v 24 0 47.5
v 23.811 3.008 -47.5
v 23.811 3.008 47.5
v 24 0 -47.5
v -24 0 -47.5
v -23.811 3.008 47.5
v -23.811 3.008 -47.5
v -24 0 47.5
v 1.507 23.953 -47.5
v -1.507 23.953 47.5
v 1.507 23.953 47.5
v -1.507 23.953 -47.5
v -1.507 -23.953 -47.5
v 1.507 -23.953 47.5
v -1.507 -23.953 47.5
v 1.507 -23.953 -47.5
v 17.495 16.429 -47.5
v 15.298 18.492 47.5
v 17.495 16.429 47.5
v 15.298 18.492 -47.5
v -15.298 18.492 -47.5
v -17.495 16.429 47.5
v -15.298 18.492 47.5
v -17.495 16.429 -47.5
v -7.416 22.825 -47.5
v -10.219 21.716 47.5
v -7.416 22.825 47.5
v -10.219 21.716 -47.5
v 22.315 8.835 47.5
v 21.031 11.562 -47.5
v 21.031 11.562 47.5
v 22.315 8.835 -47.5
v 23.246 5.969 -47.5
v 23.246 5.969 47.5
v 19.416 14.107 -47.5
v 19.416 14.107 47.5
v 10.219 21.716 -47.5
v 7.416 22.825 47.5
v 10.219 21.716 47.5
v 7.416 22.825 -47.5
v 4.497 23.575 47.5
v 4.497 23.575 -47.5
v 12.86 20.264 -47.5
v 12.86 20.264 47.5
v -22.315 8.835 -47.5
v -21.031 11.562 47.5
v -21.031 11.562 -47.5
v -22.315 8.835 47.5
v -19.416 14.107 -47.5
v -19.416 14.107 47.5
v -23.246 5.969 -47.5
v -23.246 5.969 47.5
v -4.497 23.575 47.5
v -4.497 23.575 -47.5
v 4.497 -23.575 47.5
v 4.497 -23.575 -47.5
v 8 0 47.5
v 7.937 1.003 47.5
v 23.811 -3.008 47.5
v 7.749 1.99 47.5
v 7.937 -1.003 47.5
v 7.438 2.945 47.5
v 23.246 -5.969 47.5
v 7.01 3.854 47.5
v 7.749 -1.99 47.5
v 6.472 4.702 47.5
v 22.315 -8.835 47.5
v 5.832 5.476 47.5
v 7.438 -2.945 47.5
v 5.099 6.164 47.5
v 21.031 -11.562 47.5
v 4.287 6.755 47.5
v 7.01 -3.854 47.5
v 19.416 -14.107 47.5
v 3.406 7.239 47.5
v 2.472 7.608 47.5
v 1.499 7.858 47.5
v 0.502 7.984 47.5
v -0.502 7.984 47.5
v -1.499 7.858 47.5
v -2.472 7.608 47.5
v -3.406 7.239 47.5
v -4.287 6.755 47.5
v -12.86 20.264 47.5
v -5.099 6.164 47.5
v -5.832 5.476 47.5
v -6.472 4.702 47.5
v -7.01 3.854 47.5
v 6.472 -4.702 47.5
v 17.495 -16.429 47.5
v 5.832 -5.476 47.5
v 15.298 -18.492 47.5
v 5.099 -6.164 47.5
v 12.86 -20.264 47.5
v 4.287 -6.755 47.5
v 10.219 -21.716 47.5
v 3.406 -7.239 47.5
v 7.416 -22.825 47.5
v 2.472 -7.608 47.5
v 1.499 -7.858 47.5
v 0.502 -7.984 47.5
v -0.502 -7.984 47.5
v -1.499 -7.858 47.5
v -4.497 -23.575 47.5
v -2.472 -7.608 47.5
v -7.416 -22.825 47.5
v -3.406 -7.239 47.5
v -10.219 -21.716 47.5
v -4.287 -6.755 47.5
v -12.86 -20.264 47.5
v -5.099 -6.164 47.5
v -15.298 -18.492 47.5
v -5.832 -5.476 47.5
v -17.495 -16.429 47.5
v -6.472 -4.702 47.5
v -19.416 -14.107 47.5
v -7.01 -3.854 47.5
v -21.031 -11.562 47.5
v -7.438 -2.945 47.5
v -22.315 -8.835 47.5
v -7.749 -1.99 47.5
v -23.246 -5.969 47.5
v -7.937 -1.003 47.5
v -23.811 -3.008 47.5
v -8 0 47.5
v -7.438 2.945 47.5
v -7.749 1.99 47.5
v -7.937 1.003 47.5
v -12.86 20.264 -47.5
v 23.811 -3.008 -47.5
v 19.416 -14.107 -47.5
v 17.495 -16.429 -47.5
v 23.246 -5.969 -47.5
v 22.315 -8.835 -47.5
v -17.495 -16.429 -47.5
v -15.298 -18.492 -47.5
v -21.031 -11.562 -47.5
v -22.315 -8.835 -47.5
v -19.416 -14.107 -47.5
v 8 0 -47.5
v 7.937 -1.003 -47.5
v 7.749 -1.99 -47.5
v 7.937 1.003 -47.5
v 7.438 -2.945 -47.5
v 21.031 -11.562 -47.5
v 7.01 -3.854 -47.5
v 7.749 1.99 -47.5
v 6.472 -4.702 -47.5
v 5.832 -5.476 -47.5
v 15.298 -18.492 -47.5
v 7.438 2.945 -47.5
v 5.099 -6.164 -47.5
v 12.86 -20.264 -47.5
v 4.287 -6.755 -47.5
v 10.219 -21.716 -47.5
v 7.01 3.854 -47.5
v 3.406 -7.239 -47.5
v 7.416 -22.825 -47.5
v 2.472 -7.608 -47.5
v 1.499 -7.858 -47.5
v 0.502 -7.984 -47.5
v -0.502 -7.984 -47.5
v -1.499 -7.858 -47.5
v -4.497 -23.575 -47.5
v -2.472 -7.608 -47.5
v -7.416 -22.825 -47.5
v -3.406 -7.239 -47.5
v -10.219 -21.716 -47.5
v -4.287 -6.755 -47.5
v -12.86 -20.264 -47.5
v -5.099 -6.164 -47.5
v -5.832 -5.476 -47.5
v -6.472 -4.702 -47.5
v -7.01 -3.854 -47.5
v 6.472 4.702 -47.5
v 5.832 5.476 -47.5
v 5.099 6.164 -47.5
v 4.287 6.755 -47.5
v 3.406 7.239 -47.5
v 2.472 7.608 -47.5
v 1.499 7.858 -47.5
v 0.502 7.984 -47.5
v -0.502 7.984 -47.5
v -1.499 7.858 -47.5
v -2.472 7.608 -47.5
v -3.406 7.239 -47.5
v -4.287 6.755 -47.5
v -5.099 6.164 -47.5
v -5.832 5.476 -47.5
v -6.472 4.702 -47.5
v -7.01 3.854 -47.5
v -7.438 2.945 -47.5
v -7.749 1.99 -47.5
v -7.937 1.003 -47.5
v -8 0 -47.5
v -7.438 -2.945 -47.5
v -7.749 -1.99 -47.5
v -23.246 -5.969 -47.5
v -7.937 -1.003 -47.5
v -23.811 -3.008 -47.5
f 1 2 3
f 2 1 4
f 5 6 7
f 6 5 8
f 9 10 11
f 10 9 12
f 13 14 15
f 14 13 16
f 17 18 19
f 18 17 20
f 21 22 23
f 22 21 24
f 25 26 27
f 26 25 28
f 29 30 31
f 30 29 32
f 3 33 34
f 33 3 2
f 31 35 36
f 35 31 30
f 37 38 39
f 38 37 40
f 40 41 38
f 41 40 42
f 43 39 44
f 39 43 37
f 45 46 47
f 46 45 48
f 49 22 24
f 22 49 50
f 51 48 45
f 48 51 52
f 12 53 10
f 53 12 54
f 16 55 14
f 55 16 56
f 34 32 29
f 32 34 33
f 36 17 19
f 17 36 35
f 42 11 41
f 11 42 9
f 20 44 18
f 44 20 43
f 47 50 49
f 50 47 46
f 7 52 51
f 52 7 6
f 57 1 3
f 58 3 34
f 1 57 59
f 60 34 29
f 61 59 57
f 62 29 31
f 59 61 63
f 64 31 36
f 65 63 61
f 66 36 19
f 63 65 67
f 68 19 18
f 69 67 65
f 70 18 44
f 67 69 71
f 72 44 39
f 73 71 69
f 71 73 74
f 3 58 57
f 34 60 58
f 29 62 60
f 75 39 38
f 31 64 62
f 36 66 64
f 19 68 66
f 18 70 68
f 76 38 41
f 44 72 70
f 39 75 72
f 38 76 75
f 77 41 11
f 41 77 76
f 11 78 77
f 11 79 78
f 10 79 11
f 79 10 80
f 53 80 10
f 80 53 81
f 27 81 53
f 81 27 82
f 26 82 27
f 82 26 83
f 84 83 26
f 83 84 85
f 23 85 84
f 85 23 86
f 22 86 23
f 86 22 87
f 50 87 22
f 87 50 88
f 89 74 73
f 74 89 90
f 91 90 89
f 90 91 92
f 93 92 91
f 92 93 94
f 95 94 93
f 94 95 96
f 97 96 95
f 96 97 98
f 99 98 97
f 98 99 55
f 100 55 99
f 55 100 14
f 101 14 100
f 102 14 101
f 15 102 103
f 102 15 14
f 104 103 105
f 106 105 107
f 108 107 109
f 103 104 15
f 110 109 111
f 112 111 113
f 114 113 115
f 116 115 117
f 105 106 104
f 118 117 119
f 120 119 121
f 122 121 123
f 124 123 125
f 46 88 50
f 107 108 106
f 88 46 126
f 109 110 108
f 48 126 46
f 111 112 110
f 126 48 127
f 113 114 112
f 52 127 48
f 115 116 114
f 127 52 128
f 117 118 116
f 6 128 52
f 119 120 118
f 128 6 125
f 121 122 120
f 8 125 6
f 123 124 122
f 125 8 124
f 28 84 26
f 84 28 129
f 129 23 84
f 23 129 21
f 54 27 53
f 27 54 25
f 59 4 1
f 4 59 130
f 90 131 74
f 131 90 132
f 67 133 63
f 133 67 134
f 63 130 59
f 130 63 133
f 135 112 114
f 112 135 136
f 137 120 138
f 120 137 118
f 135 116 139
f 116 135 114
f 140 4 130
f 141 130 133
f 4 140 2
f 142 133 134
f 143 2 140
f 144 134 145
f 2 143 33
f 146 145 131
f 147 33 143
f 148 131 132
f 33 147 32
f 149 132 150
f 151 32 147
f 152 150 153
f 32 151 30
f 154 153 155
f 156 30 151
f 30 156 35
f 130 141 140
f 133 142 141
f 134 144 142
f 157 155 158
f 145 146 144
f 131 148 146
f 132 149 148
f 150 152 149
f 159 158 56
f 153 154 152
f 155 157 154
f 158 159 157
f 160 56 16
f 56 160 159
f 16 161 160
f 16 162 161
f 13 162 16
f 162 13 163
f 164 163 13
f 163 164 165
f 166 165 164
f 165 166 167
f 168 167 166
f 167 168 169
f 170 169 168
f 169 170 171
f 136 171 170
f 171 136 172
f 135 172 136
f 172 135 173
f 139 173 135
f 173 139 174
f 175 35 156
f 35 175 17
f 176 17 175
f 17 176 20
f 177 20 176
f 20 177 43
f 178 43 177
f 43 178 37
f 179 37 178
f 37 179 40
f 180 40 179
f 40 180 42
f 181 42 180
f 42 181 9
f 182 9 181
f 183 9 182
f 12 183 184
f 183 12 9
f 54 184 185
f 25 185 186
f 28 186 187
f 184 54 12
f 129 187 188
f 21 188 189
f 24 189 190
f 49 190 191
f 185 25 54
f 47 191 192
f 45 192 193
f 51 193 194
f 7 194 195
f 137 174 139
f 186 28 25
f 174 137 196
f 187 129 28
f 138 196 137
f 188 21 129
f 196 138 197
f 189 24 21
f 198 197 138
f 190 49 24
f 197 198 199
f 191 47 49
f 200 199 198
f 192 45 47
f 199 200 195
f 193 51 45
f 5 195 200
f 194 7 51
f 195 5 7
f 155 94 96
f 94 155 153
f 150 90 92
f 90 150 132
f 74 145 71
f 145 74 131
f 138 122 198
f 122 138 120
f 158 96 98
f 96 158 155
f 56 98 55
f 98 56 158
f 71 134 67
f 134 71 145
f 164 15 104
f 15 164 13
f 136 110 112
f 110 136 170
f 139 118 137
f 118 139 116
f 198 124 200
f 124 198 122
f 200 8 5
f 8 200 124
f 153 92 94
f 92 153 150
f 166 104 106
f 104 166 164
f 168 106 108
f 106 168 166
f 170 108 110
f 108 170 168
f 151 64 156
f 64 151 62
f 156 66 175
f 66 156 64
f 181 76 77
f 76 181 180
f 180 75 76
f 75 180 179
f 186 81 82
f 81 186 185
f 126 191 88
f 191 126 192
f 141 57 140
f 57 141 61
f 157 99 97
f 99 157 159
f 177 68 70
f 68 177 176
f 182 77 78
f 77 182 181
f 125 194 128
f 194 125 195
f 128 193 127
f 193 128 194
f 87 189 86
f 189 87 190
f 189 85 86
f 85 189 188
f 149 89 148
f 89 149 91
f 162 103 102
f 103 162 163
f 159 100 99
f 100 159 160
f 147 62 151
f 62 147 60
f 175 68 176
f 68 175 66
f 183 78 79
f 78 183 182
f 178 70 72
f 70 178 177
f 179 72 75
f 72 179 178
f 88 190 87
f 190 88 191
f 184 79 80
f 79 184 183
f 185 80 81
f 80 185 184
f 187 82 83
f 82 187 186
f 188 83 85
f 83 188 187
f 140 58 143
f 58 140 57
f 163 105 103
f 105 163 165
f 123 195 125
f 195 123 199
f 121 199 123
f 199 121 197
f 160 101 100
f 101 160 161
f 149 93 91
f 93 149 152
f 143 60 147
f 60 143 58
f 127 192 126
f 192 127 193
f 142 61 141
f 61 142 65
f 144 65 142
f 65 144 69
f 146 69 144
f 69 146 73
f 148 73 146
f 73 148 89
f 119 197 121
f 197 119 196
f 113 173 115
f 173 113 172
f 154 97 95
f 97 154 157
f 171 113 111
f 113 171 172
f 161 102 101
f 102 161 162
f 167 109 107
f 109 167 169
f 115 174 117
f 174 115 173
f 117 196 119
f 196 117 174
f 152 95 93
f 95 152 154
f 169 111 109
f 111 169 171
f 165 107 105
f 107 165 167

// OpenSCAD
$fn = 50;


difference() {
	union() {
		translate(v = [0, 0, -47.5000000000]) {
			cylinder(h = 95, r = 24.0000000000);
		}
	}
	union() {
		translate(v = [0, 0, -100.0000000000]) {
			cylinder(h = 200, r = 8);
		}
	}
}
